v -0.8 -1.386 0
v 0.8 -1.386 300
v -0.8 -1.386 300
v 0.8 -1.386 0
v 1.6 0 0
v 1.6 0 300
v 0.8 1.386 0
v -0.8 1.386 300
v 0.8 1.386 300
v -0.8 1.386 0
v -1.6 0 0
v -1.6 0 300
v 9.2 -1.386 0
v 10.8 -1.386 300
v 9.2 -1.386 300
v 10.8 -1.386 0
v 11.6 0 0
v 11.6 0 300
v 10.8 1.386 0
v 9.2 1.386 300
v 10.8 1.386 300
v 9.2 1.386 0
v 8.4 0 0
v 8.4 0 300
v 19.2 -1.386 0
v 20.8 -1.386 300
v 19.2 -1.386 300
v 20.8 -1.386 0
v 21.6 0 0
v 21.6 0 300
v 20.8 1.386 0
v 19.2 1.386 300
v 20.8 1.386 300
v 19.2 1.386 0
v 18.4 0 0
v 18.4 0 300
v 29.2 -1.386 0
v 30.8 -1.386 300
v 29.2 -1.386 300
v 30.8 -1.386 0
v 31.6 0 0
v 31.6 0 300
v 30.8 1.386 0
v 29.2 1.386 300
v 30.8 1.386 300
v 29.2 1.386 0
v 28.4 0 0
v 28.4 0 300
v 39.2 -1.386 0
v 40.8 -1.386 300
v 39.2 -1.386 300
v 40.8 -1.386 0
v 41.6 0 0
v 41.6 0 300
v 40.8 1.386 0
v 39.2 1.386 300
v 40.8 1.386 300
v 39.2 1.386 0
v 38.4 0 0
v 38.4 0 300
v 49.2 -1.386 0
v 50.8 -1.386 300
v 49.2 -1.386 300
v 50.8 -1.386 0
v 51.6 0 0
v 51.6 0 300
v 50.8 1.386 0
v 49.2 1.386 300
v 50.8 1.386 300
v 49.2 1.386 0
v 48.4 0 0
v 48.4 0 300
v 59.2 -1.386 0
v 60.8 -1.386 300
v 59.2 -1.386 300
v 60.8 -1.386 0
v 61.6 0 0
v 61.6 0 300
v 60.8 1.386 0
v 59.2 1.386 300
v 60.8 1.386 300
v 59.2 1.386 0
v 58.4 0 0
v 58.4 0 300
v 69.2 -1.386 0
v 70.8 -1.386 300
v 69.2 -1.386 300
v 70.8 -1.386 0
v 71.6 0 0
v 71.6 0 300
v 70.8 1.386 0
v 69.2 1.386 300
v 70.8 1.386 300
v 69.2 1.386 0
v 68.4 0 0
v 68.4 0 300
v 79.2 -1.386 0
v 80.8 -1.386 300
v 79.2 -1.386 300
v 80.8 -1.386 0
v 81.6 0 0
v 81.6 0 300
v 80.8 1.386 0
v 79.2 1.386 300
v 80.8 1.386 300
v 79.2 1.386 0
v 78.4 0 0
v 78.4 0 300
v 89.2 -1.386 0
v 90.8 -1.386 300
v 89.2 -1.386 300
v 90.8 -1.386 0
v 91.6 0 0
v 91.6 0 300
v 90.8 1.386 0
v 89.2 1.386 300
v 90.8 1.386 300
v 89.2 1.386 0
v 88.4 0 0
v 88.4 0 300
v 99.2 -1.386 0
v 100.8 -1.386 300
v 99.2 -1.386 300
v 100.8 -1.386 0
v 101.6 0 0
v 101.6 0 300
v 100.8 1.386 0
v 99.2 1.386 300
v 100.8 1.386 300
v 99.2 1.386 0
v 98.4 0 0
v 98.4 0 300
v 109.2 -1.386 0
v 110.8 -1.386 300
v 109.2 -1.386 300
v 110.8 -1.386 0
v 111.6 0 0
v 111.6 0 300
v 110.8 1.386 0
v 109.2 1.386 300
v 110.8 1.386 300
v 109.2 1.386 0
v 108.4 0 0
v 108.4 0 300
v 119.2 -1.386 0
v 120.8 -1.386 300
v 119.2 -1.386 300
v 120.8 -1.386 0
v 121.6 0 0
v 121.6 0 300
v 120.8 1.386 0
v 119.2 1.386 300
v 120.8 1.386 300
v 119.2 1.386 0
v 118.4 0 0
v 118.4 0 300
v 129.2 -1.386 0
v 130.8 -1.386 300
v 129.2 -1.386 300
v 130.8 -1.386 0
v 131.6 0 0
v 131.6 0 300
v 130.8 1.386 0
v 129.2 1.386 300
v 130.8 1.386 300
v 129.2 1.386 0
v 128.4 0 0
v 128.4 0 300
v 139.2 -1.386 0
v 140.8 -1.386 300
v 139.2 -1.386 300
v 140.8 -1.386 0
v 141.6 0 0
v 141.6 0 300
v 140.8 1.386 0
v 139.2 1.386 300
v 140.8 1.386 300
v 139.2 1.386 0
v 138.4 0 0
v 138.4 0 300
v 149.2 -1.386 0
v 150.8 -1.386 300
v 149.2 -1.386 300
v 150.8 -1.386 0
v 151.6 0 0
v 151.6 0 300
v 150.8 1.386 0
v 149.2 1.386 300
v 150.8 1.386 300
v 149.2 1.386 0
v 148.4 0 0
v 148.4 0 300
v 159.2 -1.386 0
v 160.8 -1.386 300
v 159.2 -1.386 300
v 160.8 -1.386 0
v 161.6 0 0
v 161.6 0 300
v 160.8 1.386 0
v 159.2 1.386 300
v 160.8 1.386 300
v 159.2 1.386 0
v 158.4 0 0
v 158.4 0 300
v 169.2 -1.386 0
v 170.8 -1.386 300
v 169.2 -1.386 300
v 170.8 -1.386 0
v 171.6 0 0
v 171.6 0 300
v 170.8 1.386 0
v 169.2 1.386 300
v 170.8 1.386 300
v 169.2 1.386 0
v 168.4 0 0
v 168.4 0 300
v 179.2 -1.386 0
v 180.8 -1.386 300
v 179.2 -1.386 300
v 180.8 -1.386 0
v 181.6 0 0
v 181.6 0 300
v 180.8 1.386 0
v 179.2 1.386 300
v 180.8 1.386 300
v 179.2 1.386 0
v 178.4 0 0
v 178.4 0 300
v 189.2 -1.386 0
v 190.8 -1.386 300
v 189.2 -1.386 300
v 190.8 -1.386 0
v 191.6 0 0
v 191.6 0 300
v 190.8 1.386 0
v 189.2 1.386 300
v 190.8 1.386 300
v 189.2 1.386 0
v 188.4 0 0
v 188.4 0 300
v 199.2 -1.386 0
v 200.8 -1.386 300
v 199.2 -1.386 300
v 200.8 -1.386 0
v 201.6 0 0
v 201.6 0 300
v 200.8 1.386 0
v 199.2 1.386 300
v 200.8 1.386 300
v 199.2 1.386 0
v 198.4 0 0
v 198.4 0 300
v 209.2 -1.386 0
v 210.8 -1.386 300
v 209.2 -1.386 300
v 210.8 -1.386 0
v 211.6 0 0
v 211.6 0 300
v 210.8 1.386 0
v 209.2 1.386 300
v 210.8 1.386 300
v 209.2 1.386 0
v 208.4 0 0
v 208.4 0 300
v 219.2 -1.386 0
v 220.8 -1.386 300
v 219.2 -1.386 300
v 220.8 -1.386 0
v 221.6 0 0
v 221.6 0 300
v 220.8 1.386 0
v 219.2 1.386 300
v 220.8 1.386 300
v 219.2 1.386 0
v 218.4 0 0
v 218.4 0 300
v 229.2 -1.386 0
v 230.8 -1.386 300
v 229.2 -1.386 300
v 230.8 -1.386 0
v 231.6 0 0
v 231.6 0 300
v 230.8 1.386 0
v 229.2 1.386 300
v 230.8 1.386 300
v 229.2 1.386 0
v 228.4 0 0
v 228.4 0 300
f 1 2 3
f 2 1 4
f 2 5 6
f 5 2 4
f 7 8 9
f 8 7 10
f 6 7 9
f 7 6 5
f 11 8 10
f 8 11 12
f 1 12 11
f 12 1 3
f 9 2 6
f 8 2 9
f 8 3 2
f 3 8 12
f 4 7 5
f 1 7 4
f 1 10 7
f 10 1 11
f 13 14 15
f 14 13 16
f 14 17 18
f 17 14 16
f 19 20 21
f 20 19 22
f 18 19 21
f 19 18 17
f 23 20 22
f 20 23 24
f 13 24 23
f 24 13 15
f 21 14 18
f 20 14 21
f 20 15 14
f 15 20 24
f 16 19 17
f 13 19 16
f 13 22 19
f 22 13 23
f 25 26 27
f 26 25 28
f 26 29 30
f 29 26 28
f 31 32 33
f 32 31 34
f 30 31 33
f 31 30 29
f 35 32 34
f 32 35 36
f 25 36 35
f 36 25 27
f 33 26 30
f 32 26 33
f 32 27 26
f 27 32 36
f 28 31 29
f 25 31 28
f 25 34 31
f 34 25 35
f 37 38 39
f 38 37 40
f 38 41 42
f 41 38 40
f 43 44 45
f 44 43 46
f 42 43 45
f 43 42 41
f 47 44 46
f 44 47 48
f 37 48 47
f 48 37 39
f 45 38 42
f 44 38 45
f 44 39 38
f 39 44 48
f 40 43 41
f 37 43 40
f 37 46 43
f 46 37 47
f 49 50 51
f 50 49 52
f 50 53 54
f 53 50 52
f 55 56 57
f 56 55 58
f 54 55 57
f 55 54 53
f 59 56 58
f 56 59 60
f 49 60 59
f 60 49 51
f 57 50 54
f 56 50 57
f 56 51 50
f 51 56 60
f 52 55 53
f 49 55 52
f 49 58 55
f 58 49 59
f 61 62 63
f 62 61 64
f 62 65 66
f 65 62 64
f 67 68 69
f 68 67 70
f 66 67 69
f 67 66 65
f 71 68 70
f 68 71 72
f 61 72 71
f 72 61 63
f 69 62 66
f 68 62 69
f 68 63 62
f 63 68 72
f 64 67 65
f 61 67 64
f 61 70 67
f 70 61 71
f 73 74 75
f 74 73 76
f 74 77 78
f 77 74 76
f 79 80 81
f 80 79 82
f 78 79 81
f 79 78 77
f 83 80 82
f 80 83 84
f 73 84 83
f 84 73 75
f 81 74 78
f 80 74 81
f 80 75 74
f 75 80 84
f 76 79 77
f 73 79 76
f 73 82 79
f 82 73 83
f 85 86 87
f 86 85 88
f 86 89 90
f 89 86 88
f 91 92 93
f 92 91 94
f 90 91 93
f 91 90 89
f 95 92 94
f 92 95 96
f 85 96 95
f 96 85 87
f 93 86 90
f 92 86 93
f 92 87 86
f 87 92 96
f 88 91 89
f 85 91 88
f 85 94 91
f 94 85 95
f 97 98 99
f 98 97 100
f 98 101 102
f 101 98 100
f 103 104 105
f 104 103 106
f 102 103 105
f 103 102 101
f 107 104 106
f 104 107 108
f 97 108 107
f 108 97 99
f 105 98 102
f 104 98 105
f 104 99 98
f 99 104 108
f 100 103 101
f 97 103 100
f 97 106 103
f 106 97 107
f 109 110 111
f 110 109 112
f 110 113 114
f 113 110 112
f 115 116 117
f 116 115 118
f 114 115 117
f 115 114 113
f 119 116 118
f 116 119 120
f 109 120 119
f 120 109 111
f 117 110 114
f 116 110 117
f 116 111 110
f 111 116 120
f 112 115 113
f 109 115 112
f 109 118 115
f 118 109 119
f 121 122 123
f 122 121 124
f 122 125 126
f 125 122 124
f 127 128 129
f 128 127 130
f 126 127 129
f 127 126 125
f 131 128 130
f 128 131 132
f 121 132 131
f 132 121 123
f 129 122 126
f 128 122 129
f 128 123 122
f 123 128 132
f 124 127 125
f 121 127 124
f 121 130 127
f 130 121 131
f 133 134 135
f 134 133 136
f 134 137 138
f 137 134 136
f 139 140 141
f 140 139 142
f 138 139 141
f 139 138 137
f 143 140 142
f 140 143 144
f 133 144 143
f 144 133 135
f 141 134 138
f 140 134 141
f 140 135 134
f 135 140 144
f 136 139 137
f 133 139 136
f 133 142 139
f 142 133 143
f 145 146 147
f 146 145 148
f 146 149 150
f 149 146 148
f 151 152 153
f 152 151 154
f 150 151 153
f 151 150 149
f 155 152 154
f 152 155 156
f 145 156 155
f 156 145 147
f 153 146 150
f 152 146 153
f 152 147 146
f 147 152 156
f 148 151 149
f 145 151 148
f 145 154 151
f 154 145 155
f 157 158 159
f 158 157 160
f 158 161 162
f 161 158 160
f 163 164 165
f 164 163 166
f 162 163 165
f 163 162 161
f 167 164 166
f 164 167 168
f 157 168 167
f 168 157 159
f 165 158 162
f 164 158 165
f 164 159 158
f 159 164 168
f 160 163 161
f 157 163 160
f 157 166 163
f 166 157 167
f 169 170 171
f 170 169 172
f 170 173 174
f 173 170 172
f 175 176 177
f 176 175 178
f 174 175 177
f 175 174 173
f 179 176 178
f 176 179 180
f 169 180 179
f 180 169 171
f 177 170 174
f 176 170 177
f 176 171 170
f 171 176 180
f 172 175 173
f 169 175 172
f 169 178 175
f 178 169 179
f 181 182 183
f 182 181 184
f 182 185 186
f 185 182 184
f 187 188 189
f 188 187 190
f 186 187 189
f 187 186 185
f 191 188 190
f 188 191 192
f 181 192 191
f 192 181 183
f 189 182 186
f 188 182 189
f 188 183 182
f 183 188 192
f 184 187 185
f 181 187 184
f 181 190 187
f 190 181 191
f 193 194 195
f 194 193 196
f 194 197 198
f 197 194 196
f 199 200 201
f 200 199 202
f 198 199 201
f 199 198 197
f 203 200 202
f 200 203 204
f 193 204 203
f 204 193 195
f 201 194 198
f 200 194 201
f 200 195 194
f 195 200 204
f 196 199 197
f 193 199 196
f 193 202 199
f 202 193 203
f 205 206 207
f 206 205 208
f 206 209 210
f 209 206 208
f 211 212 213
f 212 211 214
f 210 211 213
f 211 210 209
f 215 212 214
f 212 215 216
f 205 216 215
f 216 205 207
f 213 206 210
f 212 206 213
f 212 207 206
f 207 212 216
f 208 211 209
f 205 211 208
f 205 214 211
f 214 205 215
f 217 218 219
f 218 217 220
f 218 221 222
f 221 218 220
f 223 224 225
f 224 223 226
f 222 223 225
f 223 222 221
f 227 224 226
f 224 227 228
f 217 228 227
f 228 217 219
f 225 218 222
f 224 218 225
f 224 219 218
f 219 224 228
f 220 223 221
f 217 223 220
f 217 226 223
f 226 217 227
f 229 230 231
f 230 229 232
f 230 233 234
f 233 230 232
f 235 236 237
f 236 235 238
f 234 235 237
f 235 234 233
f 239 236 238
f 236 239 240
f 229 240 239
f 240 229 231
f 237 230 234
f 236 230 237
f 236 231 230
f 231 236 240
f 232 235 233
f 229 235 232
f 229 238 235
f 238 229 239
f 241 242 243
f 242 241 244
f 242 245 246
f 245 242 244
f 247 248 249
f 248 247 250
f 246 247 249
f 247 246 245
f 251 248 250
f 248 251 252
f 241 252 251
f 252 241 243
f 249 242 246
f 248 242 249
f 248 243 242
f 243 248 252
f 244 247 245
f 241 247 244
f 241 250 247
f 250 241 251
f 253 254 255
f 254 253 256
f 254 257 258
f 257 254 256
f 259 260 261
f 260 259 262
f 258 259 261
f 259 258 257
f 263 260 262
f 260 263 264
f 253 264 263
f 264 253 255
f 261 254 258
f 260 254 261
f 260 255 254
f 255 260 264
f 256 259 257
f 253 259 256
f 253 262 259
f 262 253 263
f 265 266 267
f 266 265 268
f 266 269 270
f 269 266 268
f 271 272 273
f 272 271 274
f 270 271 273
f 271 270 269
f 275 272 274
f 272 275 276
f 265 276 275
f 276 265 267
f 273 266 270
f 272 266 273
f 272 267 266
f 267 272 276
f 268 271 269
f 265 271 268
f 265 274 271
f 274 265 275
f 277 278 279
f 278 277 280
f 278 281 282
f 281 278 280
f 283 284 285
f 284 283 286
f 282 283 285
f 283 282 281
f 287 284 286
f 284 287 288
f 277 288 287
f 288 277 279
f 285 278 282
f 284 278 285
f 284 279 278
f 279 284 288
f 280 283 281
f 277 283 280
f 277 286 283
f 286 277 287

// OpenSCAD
barD=3.2;
barL=300;
distance=234;

for (i=[0:10:distance]){
    
    rotate([0,0,0]){
        translate([i,0,0]){
cylinder(d=barD,h=barL);
        }//end translate
    }//end rotate
}//end for
